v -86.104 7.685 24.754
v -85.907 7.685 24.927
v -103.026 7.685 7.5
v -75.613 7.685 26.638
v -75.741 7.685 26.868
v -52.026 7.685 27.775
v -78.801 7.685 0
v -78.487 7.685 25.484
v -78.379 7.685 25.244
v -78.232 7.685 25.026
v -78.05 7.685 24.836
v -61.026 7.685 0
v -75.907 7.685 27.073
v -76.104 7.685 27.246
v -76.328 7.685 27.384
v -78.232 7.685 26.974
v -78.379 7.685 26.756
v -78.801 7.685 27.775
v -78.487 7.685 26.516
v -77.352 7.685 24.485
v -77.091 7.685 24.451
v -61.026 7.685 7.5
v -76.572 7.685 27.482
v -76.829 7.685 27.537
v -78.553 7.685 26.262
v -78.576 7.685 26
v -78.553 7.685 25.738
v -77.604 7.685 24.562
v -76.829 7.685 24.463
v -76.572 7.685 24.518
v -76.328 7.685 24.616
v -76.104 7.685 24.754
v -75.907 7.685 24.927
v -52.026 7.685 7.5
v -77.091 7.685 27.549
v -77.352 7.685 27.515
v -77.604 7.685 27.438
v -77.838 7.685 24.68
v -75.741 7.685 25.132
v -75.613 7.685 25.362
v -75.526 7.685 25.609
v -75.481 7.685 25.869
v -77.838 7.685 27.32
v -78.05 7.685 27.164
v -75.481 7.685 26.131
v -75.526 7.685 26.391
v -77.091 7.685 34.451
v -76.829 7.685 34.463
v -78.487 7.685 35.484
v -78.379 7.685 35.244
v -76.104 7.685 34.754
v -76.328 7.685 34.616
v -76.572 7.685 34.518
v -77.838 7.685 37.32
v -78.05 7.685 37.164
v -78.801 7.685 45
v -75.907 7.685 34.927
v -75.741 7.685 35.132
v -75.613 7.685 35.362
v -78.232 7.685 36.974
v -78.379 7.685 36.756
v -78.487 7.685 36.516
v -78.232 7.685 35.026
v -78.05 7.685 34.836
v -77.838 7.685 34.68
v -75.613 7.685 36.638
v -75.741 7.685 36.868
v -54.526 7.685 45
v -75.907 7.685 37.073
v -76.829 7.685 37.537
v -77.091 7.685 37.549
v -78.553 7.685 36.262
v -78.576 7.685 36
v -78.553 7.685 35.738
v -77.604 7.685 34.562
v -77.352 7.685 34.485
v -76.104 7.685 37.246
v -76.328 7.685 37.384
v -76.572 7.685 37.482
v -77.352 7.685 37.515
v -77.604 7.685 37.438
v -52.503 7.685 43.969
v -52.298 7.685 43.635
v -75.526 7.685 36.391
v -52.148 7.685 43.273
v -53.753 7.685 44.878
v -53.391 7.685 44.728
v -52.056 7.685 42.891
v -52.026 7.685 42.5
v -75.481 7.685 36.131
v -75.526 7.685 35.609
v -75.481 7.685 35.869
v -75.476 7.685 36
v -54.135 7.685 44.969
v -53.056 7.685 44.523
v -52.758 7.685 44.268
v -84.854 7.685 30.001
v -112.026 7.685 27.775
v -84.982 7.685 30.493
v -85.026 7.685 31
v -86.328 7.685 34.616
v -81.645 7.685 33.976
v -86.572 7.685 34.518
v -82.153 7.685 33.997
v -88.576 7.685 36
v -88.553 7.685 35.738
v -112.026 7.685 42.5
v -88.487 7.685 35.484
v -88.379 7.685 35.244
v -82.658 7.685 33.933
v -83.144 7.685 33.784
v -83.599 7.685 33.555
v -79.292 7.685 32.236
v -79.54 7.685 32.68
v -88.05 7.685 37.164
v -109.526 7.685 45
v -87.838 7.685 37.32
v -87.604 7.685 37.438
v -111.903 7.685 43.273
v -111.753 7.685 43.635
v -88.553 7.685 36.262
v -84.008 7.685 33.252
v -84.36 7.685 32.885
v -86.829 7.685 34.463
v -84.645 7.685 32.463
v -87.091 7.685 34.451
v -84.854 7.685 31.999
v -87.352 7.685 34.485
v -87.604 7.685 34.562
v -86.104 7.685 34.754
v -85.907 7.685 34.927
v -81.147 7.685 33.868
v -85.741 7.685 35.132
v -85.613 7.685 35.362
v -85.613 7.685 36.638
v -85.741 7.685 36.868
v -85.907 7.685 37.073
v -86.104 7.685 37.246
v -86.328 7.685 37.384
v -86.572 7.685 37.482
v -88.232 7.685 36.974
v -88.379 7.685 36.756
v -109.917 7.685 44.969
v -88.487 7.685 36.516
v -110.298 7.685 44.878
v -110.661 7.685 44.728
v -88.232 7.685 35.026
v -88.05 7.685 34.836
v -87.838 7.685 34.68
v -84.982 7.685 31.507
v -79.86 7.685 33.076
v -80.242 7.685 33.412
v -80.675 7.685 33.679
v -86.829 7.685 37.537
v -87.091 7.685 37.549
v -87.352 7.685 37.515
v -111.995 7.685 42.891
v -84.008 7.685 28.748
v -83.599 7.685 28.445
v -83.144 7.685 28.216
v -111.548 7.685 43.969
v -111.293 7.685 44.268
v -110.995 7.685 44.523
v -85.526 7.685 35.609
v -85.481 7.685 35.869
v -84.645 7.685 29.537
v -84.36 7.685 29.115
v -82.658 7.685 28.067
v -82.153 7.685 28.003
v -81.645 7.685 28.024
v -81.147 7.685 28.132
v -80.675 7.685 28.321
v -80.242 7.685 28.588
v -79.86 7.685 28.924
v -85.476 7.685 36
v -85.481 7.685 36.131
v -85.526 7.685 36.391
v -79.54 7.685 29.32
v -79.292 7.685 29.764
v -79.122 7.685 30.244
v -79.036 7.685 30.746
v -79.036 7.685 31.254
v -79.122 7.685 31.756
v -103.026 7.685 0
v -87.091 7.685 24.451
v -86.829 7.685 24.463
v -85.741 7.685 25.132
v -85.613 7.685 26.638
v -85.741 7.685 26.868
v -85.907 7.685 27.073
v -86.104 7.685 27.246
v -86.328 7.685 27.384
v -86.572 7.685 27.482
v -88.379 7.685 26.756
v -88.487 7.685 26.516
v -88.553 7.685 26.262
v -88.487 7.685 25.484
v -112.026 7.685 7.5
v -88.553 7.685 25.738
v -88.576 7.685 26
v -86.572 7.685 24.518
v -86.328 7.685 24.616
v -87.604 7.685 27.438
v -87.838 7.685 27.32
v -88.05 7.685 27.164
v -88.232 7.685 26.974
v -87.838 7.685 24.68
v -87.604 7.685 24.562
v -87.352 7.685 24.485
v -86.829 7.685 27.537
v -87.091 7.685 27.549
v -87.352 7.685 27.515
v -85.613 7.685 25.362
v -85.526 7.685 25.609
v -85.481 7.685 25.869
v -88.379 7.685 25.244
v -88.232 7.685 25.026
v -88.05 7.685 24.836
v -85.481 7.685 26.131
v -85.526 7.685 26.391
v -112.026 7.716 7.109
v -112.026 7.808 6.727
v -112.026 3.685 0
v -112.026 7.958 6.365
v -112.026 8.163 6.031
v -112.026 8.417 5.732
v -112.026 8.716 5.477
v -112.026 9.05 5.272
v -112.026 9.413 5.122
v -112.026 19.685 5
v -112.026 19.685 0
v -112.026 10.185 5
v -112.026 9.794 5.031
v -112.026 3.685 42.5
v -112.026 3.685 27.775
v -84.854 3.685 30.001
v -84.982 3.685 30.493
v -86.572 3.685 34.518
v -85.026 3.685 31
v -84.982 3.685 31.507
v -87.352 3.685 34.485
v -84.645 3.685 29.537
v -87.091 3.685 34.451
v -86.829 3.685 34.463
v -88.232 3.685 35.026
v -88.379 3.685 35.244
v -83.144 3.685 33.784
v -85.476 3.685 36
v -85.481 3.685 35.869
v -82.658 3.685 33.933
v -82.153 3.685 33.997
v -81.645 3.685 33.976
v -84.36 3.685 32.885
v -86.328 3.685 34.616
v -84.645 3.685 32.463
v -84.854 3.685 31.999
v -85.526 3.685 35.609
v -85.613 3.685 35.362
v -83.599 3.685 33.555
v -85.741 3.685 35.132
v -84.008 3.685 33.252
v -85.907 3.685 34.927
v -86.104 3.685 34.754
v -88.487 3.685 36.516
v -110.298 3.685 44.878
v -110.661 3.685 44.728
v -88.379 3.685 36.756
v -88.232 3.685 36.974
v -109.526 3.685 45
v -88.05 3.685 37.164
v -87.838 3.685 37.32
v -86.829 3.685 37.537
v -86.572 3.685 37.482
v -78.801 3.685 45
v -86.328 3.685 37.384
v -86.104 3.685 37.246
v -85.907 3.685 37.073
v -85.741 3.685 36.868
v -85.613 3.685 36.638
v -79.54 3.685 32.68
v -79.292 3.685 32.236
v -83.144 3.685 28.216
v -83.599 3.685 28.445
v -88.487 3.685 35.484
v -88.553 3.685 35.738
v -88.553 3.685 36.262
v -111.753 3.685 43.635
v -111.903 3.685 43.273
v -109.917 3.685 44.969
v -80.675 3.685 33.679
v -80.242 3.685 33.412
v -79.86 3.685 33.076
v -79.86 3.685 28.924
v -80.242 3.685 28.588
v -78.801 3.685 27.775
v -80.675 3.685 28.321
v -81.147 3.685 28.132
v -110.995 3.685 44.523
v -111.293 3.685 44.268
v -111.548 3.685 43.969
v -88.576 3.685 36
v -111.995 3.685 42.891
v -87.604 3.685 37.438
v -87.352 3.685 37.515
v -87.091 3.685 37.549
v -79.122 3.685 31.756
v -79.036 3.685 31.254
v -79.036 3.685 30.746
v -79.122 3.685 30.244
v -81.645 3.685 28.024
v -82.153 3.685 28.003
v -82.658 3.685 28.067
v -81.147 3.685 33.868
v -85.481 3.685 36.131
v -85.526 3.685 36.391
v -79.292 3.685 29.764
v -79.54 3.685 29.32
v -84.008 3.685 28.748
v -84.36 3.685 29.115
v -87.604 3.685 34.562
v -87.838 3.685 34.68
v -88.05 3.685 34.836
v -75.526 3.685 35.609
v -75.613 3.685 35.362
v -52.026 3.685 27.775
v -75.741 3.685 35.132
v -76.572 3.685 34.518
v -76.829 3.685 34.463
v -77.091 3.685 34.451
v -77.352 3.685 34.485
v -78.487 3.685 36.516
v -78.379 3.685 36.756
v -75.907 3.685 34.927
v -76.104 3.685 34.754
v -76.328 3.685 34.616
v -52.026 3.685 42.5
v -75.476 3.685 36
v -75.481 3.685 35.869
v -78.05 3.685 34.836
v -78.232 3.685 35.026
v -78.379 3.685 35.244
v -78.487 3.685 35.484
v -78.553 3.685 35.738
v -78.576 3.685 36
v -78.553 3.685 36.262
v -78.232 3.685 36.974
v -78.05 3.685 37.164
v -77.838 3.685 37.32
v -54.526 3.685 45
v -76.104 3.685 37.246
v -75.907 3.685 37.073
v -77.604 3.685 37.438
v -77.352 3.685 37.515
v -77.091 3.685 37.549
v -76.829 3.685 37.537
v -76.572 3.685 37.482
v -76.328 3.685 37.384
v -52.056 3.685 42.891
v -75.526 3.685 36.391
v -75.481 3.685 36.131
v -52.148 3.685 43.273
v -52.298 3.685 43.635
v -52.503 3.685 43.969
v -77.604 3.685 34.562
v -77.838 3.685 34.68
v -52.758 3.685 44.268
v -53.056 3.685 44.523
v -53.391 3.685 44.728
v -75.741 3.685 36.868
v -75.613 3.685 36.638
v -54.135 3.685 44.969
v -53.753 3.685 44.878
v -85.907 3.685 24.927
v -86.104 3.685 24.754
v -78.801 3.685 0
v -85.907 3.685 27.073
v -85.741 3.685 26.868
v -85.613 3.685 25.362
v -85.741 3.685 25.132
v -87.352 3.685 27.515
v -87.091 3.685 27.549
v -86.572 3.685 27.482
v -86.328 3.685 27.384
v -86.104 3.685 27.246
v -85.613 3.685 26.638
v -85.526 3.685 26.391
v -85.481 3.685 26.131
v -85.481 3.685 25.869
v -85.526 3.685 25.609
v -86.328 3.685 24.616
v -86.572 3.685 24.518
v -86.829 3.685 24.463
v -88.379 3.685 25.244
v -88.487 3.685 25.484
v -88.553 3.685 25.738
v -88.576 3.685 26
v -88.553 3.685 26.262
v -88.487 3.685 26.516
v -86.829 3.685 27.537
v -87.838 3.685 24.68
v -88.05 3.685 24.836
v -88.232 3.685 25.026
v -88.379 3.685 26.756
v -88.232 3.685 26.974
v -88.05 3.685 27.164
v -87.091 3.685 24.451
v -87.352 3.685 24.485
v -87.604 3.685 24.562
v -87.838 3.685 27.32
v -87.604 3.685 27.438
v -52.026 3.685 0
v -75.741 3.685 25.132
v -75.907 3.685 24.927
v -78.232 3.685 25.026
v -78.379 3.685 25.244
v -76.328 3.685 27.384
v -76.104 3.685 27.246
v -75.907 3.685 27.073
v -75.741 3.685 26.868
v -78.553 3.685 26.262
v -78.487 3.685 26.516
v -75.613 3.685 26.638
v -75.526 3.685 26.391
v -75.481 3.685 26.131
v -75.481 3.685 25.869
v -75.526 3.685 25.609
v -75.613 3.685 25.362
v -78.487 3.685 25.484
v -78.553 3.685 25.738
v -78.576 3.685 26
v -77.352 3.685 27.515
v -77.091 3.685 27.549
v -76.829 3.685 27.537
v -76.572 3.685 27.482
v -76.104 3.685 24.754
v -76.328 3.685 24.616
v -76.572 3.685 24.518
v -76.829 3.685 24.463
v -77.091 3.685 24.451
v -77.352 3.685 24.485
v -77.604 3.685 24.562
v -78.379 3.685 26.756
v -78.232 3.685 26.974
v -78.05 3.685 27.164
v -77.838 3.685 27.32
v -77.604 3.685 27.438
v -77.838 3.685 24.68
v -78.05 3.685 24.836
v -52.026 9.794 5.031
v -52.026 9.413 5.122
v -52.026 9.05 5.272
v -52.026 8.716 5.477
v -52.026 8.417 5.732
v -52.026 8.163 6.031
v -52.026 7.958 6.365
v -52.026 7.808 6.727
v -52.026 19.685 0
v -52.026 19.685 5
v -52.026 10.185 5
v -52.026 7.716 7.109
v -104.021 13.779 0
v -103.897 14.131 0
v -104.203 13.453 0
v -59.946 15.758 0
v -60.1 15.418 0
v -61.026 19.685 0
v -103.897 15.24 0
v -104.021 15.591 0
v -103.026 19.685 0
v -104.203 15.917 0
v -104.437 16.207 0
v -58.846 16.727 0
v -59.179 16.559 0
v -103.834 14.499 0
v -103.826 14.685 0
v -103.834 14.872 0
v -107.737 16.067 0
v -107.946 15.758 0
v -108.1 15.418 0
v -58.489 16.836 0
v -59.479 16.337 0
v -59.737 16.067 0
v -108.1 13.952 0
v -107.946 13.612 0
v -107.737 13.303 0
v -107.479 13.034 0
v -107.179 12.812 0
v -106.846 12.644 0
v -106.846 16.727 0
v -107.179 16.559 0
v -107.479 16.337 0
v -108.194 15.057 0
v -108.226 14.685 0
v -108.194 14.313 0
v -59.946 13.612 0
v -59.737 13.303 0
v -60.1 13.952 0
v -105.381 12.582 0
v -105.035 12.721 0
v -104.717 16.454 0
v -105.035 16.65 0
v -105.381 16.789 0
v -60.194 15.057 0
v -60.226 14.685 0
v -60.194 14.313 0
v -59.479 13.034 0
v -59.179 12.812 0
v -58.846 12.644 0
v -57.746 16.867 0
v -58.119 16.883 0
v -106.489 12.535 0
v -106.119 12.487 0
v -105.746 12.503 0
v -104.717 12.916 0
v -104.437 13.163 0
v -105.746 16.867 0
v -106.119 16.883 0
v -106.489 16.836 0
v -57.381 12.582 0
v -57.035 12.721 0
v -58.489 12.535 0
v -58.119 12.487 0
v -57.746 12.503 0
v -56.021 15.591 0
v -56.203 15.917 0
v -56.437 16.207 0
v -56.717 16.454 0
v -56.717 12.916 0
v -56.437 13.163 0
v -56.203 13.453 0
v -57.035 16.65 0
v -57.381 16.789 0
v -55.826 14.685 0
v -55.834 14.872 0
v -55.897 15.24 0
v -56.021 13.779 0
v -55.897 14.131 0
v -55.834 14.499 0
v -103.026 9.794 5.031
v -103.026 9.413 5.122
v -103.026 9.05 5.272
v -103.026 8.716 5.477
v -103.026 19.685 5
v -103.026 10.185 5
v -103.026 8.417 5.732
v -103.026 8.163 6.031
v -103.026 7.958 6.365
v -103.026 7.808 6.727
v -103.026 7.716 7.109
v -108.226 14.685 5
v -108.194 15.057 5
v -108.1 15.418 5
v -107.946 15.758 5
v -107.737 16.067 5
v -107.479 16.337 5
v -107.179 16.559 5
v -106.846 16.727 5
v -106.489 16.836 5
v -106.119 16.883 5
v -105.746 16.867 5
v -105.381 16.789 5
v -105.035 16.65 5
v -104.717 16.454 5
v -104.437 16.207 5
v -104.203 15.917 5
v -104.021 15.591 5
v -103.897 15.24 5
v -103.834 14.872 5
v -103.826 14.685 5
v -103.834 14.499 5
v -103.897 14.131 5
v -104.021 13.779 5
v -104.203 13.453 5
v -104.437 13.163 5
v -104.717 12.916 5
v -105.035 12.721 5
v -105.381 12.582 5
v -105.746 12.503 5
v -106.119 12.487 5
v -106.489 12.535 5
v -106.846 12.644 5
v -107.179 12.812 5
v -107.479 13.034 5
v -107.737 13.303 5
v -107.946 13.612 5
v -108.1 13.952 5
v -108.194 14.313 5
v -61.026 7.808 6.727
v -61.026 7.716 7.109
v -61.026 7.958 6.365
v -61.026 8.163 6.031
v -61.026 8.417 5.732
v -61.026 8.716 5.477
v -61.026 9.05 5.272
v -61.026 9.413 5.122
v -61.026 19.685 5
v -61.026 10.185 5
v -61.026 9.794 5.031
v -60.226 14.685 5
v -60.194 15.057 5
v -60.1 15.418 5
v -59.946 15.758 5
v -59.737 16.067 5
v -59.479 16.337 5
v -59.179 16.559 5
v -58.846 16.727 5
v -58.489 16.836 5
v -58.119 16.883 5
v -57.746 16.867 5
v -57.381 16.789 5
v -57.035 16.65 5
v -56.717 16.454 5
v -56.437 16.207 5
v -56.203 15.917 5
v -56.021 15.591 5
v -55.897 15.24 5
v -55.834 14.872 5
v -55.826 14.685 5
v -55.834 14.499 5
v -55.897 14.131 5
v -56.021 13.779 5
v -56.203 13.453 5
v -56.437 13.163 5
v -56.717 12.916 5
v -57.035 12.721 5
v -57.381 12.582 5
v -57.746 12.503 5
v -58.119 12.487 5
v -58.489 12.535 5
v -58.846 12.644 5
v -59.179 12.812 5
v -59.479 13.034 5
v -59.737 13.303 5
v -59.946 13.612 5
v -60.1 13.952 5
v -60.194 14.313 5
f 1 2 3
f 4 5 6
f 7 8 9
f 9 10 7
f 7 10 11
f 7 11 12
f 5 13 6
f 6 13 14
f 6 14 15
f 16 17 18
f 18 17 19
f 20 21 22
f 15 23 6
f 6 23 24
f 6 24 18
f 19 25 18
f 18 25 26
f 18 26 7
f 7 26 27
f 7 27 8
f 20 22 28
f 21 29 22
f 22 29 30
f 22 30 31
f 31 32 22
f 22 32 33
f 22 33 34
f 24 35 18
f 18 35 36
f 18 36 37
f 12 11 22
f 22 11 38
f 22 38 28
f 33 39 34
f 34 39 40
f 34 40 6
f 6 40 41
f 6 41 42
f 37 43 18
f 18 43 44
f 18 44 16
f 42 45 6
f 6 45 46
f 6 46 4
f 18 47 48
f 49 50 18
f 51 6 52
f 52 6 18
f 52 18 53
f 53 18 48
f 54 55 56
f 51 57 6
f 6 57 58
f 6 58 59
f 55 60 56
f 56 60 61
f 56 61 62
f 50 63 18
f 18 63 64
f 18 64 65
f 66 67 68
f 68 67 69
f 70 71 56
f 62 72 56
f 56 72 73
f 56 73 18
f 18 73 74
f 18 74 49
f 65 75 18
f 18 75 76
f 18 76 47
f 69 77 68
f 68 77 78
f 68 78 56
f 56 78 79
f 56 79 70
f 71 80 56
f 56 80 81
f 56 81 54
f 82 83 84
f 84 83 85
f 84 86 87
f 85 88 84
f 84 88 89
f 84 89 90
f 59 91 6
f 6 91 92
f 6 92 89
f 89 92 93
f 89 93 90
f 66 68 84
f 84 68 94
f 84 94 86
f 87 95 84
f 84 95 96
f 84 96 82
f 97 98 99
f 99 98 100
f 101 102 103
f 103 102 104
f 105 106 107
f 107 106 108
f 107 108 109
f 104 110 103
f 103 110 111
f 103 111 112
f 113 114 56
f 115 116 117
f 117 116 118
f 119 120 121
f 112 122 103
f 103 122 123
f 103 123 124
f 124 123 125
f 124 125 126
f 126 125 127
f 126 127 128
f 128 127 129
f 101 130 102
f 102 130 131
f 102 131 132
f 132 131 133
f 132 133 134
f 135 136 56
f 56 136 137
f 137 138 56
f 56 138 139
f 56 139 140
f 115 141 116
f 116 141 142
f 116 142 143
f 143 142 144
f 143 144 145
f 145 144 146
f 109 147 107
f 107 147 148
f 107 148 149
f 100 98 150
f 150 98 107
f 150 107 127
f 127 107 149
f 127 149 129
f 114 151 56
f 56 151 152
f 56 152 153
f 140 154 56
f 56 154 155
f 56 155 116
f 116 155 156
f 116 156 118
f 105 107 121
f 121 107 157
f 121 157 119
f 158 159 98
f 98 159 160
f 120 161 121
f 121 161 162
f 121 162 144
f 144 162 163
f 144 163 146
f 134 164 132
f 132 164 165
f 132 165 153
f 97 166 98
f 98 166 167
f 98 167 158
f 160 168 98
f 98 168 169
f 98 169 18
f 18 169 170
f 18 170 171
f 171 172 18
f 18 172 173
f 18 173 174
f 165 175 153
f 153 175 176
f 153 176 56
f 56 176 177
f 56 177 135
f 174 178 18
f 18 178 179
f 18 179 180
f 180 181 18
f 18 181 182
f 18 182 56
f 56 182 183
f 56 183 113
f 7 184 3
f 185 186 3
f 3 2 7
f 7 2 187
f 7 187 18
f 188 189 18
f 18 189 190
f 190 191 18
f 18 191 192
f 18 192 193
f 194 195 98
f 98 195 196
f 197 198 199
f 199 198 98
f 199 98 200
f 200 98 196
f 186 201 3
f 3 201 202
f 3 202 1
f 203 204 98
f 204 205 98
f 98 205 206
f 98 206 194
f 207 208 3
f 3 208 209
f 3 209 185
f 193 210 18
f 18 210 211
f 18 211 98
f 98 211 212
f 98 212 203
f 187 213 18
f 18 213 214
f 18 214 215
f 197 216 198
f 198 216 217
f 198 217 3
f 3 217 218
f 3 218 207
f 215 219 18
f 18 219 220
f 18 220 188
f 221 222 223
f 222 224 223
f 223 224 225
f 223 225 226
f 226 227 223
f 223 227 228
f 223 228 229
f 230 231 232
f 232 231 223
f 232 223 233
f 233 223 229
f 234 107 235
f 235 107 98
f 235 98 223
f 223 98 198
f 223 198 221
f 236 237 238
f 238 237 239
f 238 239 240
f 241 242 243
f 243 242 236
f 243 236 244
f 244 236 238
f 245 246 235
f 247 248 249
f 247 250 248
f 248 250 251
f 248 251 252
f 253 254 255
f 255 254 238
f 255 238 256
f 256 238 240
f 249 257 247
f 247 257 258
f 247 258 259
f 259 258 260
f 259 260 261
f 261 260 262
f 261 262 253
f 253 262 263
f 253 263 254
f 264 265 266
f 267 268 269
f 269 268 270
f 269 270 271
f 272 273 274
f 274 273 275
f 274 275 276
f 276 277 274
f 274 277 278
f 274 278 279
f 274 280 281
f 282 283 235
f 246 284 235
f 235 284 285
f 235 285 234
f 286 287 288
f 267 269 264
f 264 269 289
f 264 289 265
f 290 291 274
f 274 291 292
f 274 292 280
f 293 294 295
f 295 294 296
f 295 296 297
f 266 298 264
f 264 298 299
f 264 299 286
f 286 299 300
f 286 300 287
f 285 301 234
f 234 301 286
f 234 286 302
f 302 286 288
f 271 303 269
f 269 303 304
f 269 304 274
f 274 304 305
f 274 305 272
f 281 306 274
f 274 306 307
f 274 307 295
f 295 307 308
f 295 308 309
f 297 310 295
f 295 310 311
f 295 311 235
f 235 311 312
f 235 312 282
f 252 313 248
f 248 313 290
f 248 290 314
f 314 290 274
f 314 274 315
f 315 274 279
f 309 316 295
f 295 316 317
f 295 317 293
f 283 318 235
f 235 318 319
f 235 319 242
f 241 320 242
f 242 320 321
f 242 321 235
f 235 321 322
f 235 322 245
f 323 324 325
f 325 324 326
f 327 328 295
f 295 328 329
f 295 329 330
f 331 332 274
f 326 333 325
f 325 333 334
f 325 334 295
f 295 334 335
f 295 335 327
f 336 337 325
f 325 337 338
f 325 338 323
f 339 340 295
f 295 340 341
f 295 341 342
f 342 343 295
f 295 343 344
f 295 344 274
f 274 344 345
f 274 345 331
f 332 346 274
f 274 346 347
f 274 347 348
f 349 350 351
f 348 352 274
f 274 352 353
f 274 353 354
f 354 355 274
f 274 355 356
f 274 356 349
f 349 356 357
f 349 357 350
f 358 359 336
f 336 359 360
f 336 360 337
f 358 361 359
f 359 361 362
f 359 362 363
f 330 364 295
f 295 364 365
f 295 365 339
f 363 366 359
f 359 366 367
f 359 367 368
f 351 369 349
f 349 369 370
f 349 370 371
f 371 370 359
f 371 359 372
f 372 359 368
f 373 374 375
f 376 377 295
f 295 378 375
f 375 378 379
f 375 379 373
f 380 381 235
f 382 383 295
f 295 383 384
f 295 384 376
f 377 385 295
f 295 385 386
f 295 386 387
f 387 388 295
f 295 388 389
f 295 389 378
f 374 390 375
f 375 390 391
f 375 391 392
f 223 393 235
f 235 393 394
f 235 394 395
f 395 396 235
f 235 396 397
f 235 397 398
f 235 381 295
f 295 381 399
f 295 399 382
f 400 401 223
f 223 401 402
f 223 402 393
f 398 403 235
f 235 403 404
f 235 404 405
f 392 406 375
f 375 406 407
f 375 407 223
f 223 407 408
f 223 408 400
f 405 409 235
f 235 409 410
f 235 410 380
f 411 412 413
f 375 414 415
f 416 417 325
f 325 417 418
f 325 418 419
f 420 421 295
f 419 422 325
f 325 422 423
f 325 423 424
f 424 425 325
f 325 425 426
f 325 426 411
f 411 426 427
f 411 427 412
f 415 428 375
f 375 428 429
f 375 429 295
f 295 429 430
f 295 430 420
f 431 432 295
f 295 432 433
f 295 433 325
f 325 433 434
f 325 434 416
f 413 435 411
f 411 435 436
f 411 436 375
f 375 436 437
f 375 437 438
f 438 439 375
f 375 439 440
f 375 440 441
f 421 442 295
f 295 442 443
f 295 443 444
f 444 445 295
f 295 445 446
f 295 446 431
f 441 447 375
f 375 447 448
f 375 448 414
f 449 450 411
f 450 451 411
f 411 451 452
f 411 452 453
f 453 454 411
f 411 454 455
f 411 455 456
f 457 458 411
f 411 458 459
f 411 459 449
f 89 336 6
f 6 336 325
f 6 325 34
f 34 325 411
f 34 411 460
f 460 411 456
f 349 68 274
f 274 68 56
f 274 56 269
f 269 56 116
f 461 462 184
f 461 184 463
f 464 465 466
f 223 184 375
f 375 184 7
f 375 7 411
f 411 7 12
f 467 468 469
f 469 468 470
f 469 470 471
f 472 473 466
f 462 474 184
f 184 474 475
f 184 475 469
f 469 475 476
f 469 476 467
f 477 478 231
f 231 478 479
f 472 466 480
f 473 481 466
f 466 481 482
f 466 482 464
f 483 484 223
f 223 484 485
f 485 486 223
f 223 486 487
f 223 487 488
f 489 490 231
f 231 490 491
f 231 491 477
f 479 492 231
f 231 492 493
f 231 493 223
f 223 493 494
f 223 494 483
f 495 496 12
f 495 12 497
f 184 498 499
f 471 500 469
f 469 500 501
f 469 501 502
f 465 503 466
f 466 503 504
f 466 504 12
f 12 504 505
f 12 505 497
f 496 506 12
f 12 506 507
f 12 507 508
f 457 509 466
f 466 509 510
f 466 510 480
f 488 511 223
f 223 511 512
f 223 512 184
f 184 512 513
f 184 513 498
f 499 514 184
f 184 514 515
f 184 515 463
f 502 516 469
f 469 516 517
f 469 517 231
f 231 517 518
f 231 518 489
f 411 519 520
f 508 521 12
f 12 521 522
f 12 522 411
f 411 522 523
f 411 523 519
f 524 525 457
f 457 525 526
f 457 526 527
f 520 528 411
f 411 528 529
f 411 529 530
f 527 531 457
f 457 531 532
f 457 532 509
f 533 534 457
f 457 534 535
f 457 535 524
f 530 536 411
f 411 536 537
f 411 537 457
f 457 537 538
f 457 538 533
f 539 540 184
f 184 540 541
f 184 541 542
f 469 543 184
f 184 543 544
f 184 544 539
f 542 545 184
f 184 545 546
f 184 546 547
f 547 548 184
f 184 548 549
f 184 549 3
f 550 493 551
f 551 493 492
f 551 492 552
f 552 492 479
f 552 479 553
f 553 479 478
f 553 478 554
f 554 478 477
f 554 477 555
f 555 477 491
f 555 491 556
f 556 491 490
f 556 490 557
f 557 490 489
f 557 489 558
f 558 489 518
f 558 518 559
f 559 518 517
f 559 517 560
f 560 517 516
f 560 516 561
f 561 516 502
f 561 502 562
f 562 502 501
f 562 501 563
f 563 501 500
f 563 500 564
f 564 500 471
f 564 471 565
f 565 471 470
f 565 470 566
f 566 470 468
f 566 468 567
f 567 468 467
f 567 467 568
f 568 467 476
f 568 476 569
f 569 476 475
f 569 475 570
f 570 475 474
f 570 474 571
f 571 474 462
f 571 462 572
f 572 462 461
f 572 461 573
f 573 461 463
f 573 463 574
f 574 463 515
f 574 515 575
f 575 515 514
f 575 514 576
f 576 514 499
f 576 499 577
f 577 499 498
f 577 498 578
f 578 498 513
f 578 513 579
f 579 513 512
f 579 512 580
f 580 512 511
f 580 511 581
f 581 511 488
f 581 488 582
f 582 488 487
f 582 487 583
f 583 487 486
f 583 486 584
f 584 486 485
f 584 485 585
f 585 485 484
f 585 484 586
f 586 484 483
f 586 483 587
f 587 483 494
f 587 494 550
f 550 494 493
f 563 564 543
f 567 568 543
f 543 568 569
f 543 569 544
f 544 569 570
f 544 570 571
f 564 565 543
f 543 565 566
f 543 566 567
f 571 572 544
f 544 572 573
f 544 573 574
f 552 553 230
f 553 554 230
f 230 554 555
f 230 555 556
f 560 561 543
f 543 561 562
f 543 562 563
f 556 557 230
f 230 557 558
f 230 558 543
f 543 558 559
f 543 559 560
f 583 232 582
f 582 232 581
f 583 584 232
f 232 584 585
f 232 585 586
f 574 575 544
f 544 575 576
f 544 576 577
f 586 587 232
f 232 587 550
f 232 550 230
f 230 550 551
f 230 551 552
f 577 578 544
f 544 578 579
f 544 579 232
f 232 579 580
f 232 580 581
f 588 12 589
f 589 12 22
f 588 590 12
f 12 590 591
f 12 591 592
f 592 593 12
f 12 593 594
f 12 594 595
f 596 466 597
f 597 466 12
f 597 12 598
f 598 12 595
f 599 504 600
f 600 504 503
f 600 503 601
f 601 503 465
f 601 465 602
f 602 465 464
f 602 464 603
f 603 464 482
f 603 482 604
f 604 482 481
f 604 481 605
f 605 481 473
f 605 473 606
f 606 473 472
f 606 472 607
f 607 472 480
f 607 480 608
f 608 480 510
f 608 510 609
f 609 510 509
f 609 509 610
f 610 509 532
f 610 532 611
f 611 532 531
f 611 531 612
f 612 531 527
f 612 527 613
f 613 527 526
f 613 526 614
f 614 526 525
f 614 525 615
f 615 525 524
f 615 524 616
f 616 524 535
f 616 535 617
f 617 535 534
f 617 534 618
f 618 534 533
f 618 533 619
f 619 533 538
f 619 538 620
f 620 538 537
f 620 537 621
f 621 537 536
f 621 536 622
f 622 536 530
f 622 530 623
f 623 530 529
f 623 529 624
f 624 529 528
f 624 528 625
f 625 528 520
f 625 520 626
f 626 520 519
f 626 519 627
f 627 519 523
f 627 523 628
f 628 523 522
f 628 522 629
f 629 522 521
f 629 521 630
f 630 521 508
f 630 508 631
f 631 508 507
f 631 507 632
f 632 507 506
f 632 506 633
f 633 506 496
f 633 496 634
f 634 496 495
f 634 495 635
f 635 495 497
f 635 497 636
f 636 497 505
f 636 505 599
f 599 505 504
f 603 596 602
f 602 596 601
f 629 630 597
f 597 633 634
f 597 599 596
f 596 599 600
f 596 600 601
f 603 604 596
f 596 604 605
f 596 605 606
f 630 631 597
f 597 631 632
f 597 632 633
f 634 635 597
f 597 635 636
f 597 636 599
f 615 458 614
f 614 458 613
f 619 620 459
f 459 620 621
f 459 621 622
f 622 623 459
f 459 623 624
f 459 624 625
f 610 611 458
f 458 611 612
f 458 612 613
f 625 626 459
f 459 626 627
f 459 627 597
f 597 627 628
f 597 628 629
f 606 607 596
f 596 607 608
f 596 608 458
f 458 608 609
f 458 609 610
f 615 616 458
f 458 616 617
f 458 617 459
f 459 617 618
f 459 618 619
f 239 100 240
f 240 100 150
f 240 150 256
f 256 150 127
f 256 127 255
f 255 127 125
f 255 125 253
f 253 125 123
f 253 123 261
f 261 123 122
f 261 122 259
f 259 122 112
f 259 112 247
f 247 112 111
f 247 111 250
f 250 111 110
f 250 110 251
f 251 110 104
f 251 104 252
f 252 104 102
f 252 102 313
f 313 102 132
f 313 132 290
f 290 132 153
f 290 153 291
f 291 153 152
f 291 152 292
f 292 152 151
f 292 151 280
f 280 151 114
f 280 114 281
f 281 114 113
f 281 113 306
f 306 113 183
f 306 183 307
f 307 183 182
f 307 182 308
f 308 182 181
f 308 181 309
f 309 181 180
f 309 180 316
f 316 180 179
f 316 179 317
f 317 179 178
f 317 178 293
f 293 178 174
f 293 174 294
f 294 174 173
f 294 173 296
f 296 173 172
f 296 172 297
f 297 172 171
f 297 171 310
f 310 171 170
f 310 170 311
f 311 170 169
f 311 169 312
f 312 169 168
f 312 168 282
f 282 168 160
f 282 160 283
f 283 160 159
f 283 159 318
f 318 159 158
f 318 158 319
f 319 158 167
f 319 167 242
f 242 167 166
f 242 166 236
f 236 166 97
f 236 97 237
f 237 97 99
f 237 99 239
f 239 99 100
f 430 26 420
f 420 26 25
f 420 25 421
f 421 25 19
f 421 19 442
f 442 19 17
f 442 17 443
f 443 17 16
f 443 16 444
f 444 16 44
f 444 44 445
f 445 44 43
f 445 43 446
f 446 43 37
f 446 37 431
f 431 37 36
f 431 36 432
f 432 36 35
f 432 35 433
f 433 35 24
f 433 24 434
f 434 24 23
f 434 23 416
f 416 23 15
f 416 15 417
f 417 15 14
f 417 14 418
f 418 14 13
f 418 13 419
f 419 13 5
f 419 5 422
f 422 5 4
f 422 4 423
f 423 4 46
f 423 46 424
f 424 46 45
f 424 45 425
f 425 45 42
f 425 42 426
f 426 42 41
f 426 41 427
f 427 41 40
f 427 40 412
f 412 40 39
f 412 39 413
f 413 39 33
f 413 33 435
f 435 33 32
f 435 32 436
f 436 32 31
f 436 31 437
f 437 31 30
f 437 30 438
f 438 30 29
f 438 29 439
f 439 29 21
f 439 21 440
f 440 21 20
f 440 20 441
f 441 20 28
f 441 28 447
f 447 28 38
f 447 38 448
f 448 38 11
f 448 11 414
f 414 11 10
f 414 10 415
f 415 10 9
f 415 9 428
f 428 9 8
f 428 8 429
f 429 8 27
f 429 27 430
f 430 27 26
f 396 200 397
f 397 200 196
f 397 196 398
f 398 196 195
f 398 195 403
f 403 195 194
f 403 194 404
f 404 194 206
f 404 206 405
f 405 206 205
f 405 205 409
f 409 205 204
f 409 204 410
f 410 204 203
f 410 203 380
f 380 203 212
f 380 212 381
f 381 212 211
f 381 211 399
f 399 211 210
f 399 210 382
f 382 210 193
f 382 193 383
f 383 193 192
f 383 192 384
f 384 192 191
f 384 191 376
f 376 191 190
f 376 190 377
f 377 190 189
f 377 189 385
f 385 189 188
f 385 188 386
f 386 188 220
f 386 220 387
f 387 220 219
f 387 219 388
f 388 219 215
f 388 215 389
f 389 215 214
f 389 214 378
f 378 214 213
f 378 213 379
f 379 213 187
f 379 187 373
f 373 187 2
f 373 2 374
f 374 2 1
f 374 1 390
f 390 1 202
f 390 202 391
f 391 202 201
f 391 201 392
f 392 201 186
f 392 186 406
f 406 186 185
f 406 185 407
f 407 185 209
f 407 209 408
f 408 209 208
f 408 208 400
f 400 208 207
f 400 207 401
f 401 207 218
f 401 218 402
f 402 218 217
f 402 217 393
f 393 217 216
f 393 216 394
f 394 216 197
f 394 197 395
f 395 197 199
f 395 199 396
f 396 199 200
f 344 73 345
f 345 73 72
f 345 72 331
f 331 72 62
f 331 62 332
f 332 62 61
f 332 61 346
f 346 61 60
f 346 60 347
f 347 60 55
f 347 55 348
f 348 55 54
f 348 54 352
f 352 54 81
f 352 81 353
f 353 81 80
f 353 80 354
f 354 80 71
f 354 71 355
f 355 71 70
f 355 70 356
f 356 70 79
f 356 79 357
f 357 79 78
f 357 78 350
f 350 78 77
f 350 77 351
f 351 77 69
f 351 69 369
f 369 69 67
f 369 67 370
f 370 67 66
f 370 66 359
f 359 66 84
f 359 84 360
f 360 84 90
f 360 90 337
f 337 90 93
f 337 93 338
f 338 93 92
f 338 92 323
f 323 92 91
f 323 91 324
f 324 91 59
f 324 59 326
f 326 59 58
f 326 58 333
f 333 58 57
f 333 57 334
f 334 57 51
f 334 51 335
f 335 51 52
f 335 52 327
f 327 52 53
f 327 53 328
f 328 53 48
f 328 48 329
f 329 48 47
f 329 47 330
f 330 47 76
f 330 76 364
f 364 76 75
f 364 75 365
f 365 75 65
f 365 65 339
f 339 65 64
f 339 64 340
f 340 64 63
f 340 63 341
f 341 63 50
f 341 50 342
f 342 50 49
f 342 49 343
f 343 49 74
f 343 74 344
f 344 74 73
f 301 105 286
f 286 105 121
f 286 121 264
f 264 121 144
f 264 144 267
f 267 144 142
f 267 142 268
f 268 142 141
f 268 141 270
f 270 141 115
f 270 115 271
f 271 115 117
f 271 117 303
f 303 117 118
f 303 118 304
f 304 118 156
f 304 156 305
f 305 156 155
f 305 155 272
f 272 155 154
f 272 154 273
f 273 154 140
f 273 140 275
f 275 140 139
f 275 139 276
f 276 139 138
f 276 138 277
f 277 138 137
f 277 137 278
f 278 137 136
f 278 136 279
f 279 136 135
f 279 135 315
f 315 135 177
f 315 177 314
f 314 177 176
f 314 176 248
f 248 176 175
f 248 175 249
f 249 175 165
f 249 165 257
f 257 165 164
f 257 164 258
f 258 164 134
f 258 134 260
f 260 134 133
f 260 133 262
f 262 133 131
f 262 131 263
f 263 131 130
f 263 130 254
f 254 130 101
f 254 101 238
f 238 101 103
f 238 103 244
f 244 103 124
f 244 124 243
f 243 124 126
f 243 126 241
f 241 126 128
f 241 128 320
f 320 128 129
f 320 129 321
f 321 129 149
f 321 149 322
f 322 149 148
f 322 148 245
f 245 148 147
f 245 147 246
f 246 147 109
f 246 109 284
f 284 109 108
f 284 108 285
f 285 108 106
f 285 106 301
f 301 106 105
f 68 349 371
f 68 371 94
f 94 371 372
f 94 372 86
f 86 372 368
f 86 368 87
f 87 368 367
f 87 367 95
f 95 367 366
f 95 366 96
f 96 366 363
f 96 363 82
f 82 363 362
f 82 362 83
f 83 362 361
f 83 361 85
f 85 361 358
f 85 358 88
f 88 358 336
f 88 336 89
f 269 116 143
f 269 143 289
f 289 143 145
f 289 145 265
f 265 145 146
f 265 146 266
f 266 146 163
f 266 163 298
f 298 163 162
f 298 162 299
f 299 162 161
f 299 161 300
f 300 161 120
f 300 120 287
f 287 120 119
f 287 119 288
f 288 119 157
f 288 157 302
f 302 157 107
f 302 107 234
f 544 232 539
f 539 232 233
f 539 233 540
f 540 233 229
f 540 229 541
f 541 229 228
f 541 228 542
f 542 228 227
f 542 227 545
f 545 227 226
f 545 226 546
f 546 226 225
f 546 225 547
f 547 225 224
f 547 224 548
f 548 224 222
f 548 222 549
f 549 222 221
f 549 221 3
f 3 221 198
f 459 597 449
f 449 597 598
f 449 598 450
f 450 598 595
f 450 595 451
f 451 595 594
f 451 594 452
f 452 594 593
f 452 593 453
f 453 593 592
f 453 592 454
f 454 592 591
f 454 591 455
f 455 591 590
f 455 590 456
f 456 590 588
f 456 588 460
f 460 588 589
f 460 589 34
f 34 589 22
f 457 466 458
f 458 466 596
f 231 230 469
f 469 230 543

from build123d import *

# Parameters (mm, degrees)
SKETCH1_W           = 60
SKETCH1_H           = 4
BOSS_EXTRUDE1_DEPTH = 45
SKETCH1_3_W         = 9
SKETCH1_3_H         = 24
SKETCH1_3_R         = 2.2
BOSS_EXTRUDE2_DEPTH = 5
SKETCH2_R           = 3
SKETCH2_R_2         = 1.55
CUT_EXTRUDE1_DEPTH  = 124.088359511
BOSS_EXTRUDE3_DEPTH = 45
FILLET1_R           = 2.5
FILLET3_R           = 2.5
SKETCH3_R           = 4
BOSS_EXTRUDE4_DEPTH = 12
SKETCH4_R           = 6
BOSS_EXTRUDE5_DEPTH = 5
FILLET4_R           = 1
SKETCH5_W           = 46.619734532
SKETCH5_H           = 29.432499903
CUT_EXTRUDE3_DEPTH  = 89.875621116


with BuildPart() as part:
    # Sketch1 → Boss-Extrude1 (new body)
    with BuildSketch(Plane.XY):
        with Locations((-82.025641026, 5.685176195)):
            Rectangle(SKETCH1_W, SKETCH1_H)
    extrude(amount=BOSS_EXTRUDE1_DEPTH)

    # Sketch1<3> → Boss-Extrude2 (add)
    # profile 1 of 2: a face of its own
    with BuildSketch(Plane.XY):
        with Locations((-107.525641026, 19.685176195)):
            Rectangle(SKETCH1_3_W, SKETCH1_3_H)
        with Locations((-106.025641026, 14.685176195)):
            Circle(SKETCH1_3_R, mode=Mode.SUBTRACT)
        with Locations((-106.025641026, 24.685176195)):
            Circle(SKETCH1_3_R, mode=Mode.SUBTRACT)
    # profile 2 of 2: a face of its own
    with BuildSketch(Plane.XY):
        with Locations((-56.525641026, 19.685176195)):
            Rectangle(SKETCH1_3_W, SKETCH1_3_H)
        with Locations((-58.025641026, 14.685176195)):
            Circle(SKETCH1_3_R, mode=Mode.SUBTRACT)
        with Locations((-58.025641026, 24.685176195)):
            Circle(SKETCH1_3_R, mode=Mode.SUBTRACT)
    extrude(amount=BOSS_EXTRUDE2_DEPTH)

    # Sketch2 → Cut-Extrude1 (cut, through all)
    with BuildSketch(Plane(origin=(0, 7.685176195, 0), x_dir=(1, 0, 0), z_dir=(0, 1, 0))):
        with Locations((-82.025641026, -31)):
            Circle(SKETCH2_R)
        with Locations((-77.025641026, -26)):
            Circle(SKETCH2_R_2)
        with Locations((-87.025641026, -26)):
            Circle(SKETCH2_R_2)
        with Locations((-77.025641026, -36)):
            Circle(SKETCH2_R_2)
        with Locations((-87.025641026, -36)):
            Circle(SKETCH2_R_2)
    extrude(amount=-CUT_EXTRUDE1_DEPTH, mode=Mode.SUBTRACT)

    # Sketch1<4> → Boss-Extrude3 (add)
    with BuildSketch(Plane.XY):
        Polygon((-112.025641026, 35.685176195), (-112.025641026, 31.685176195), (-103.025641026, 31.685176195), (-61.025641026, 31.685176195), (-52.025641026, 31.685176195), (-52.025641026, 35.685176195), align=None)
    extrude(amount=BOSS_EXTRUDE3_DEPTH)

    # Fillet1
    fillet1_edges = [part.edges().sort_by_distance(p)[0] for p in [
        (-52.025641026, 5.685176195, 45),
        (-112.025641026, 5.685176195, 45),
        (-52.025641026, 33.685176195, 45),
        (-112.025641026, 33.685176195, 45),
    ]]
    fillet(fillet1_edges, radius=FILLET1_R)

    # Fillet3
    fillet3_edges = [part.edges().sort_by_distance(p)[0] for p in [
        (-107.525641026, 7.685176195, 5),
        (-56.525641026, 7.685176195, 5),
        (-56.525641026, 31.685176195, 5),
        (-107.525641026, 31.685176195, 5),
    ]]
    fillet(fillet3_edges, radius=FILLET3_R)

    # Sketch3 → Boss-Extrude4 (add)
    with BuildSketch(Plane(origin=(0, 35.685176195, 0), x_dir=(1, 0, 0), z_dir=(0, 1, 0))):
        with Locations((-82.025641026, -31)):
            Circle(SKETCH3_R)
    extrude(amount=BOSS_EXTRUDE4_DEPTH)

    # Sketch4 → Boss-Extrude5 (add)
    with BuildSketch(Plane(origin=(0, 35.685176195, 0), x_dir=(1, 0, 0), z_dir=(0, 1, 0))):
        with Locations((-82.025641026, -31)):
            Circle(SKETCH4_R)
    extrude(amount=BOSS_EXTRUDE5_DEPTH)

    # Fillet4
    fillet4_edges = [part.edges().sort_by_distance(p)[0] for p in [
        (-86.025641026, 40.685176195, 31),
    ]]
    fillet(fillet4_edges, radius=FILLET4_R)

    # Sketch5 → Cut-Extrude3 (cut, through all)
    with BuildSketch(Plane.ZY.offset(112.025641026)):
        with Locations((23.309867266, 34.401426147)):
            Rectangle(SKETCH5_W, SKETCH5_H)
    extrude(amount=-CUT_EXTRUDE3_DEPTH, mode=Mode.SUBTRACT)


solid = part.part
